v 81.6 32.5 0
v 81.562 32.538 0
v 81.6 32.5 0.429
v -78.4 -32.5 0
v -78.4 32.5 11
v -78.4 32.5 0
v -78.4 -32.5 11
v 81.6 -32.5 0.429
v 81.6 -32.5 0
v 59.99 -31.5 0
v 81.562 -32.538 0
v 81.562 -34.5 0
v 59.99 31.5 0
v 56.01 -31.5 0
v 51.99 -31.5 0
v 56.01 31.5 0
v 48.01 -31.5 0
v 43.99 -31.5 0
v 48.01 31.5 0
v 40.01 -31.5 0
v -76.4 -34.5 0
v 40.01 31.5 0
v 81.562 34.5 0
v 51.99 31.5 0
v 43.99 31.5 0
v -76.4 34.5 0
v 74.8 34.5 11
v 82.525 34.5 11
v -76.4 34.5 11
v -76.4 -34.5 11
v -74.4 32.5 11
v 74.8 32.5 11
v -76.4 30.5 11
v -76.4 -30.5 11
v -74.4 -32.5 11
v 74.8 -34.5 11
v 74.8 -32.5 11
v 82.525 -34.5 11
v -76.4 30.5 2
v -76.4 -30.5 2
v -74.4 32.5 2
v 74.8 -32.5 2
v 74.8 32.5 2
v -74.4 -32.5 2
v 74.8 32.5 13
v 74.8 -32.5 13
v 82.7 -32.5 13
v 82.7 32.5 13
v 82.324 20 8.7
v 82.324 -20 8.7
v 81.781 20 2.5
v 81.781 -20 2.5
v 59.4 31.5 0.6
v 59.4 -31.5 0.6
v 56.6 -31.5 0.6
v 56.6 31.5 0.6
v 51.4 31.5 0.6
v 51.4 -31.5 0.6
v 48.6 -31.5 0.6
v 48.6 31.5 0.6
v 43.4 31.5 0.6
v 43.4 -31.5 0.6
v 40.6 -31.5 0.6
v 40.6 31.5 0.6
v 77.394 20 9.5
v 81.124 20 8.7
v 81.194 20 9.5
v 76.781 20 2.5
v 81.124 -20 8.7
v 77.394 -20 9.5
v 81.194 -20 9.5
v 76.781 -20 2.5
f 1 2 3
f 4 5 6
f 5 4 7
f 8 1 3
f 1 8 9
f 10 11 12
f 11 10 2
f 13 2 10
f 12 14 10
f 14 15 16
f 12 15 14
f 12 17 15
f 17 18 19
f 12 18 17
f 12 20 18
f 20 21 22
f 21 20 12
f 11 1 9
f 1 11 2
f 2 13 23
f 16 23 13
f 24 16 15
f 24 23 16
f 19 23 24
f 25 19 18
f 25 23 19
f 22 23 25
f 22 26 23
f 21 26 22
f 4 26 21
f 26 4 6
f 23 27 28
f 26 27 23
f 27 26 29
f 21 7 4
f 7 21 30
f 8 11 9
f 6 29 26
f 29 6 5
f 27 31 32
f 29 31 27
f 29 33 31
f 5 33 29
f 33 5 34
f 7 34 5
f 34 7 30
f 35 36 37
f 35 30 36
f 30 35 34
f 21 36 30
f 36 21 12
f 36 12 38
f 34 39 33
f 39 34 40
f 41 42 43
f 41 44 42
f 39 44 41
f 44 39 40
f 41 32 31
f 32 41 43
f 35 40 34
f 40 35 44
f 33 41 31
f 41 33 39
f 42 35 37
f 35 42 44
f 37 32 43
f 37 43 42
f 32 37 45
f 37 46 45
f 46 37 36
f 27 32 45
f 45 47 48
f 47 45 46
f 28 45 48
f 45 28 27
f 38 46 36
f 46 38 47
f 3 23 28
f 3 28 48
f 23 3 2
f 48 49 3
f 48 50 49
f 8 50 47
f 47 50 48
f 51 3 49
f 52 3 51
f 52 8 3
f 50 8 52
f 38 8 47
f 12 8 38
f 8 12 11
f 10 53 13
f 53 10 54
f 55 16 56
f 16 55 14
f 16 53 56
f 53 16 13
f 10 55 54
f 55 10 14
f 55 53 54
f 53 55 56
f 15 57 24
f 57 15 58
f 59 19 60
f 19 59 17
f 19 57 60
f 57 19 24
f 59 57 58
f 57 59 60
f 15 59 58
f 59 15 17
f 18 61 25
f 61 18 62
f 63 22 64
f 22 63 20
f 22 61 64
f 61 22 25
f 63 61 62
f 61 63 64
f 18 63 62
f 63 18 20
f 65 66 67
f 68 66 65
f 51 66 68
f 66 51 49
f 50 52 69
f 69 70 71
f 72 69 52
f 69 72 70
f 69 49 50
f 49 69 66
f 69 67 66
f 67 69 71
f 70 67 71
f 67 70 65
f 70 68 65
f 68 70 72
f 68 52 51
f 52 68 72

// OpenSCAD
// Pull-out drip tray only — prints as modelled, flat on the bed, basin
// up. See marsh_repot_020.scad.
include <marsh_repot_020.scad>
part = "tray";
